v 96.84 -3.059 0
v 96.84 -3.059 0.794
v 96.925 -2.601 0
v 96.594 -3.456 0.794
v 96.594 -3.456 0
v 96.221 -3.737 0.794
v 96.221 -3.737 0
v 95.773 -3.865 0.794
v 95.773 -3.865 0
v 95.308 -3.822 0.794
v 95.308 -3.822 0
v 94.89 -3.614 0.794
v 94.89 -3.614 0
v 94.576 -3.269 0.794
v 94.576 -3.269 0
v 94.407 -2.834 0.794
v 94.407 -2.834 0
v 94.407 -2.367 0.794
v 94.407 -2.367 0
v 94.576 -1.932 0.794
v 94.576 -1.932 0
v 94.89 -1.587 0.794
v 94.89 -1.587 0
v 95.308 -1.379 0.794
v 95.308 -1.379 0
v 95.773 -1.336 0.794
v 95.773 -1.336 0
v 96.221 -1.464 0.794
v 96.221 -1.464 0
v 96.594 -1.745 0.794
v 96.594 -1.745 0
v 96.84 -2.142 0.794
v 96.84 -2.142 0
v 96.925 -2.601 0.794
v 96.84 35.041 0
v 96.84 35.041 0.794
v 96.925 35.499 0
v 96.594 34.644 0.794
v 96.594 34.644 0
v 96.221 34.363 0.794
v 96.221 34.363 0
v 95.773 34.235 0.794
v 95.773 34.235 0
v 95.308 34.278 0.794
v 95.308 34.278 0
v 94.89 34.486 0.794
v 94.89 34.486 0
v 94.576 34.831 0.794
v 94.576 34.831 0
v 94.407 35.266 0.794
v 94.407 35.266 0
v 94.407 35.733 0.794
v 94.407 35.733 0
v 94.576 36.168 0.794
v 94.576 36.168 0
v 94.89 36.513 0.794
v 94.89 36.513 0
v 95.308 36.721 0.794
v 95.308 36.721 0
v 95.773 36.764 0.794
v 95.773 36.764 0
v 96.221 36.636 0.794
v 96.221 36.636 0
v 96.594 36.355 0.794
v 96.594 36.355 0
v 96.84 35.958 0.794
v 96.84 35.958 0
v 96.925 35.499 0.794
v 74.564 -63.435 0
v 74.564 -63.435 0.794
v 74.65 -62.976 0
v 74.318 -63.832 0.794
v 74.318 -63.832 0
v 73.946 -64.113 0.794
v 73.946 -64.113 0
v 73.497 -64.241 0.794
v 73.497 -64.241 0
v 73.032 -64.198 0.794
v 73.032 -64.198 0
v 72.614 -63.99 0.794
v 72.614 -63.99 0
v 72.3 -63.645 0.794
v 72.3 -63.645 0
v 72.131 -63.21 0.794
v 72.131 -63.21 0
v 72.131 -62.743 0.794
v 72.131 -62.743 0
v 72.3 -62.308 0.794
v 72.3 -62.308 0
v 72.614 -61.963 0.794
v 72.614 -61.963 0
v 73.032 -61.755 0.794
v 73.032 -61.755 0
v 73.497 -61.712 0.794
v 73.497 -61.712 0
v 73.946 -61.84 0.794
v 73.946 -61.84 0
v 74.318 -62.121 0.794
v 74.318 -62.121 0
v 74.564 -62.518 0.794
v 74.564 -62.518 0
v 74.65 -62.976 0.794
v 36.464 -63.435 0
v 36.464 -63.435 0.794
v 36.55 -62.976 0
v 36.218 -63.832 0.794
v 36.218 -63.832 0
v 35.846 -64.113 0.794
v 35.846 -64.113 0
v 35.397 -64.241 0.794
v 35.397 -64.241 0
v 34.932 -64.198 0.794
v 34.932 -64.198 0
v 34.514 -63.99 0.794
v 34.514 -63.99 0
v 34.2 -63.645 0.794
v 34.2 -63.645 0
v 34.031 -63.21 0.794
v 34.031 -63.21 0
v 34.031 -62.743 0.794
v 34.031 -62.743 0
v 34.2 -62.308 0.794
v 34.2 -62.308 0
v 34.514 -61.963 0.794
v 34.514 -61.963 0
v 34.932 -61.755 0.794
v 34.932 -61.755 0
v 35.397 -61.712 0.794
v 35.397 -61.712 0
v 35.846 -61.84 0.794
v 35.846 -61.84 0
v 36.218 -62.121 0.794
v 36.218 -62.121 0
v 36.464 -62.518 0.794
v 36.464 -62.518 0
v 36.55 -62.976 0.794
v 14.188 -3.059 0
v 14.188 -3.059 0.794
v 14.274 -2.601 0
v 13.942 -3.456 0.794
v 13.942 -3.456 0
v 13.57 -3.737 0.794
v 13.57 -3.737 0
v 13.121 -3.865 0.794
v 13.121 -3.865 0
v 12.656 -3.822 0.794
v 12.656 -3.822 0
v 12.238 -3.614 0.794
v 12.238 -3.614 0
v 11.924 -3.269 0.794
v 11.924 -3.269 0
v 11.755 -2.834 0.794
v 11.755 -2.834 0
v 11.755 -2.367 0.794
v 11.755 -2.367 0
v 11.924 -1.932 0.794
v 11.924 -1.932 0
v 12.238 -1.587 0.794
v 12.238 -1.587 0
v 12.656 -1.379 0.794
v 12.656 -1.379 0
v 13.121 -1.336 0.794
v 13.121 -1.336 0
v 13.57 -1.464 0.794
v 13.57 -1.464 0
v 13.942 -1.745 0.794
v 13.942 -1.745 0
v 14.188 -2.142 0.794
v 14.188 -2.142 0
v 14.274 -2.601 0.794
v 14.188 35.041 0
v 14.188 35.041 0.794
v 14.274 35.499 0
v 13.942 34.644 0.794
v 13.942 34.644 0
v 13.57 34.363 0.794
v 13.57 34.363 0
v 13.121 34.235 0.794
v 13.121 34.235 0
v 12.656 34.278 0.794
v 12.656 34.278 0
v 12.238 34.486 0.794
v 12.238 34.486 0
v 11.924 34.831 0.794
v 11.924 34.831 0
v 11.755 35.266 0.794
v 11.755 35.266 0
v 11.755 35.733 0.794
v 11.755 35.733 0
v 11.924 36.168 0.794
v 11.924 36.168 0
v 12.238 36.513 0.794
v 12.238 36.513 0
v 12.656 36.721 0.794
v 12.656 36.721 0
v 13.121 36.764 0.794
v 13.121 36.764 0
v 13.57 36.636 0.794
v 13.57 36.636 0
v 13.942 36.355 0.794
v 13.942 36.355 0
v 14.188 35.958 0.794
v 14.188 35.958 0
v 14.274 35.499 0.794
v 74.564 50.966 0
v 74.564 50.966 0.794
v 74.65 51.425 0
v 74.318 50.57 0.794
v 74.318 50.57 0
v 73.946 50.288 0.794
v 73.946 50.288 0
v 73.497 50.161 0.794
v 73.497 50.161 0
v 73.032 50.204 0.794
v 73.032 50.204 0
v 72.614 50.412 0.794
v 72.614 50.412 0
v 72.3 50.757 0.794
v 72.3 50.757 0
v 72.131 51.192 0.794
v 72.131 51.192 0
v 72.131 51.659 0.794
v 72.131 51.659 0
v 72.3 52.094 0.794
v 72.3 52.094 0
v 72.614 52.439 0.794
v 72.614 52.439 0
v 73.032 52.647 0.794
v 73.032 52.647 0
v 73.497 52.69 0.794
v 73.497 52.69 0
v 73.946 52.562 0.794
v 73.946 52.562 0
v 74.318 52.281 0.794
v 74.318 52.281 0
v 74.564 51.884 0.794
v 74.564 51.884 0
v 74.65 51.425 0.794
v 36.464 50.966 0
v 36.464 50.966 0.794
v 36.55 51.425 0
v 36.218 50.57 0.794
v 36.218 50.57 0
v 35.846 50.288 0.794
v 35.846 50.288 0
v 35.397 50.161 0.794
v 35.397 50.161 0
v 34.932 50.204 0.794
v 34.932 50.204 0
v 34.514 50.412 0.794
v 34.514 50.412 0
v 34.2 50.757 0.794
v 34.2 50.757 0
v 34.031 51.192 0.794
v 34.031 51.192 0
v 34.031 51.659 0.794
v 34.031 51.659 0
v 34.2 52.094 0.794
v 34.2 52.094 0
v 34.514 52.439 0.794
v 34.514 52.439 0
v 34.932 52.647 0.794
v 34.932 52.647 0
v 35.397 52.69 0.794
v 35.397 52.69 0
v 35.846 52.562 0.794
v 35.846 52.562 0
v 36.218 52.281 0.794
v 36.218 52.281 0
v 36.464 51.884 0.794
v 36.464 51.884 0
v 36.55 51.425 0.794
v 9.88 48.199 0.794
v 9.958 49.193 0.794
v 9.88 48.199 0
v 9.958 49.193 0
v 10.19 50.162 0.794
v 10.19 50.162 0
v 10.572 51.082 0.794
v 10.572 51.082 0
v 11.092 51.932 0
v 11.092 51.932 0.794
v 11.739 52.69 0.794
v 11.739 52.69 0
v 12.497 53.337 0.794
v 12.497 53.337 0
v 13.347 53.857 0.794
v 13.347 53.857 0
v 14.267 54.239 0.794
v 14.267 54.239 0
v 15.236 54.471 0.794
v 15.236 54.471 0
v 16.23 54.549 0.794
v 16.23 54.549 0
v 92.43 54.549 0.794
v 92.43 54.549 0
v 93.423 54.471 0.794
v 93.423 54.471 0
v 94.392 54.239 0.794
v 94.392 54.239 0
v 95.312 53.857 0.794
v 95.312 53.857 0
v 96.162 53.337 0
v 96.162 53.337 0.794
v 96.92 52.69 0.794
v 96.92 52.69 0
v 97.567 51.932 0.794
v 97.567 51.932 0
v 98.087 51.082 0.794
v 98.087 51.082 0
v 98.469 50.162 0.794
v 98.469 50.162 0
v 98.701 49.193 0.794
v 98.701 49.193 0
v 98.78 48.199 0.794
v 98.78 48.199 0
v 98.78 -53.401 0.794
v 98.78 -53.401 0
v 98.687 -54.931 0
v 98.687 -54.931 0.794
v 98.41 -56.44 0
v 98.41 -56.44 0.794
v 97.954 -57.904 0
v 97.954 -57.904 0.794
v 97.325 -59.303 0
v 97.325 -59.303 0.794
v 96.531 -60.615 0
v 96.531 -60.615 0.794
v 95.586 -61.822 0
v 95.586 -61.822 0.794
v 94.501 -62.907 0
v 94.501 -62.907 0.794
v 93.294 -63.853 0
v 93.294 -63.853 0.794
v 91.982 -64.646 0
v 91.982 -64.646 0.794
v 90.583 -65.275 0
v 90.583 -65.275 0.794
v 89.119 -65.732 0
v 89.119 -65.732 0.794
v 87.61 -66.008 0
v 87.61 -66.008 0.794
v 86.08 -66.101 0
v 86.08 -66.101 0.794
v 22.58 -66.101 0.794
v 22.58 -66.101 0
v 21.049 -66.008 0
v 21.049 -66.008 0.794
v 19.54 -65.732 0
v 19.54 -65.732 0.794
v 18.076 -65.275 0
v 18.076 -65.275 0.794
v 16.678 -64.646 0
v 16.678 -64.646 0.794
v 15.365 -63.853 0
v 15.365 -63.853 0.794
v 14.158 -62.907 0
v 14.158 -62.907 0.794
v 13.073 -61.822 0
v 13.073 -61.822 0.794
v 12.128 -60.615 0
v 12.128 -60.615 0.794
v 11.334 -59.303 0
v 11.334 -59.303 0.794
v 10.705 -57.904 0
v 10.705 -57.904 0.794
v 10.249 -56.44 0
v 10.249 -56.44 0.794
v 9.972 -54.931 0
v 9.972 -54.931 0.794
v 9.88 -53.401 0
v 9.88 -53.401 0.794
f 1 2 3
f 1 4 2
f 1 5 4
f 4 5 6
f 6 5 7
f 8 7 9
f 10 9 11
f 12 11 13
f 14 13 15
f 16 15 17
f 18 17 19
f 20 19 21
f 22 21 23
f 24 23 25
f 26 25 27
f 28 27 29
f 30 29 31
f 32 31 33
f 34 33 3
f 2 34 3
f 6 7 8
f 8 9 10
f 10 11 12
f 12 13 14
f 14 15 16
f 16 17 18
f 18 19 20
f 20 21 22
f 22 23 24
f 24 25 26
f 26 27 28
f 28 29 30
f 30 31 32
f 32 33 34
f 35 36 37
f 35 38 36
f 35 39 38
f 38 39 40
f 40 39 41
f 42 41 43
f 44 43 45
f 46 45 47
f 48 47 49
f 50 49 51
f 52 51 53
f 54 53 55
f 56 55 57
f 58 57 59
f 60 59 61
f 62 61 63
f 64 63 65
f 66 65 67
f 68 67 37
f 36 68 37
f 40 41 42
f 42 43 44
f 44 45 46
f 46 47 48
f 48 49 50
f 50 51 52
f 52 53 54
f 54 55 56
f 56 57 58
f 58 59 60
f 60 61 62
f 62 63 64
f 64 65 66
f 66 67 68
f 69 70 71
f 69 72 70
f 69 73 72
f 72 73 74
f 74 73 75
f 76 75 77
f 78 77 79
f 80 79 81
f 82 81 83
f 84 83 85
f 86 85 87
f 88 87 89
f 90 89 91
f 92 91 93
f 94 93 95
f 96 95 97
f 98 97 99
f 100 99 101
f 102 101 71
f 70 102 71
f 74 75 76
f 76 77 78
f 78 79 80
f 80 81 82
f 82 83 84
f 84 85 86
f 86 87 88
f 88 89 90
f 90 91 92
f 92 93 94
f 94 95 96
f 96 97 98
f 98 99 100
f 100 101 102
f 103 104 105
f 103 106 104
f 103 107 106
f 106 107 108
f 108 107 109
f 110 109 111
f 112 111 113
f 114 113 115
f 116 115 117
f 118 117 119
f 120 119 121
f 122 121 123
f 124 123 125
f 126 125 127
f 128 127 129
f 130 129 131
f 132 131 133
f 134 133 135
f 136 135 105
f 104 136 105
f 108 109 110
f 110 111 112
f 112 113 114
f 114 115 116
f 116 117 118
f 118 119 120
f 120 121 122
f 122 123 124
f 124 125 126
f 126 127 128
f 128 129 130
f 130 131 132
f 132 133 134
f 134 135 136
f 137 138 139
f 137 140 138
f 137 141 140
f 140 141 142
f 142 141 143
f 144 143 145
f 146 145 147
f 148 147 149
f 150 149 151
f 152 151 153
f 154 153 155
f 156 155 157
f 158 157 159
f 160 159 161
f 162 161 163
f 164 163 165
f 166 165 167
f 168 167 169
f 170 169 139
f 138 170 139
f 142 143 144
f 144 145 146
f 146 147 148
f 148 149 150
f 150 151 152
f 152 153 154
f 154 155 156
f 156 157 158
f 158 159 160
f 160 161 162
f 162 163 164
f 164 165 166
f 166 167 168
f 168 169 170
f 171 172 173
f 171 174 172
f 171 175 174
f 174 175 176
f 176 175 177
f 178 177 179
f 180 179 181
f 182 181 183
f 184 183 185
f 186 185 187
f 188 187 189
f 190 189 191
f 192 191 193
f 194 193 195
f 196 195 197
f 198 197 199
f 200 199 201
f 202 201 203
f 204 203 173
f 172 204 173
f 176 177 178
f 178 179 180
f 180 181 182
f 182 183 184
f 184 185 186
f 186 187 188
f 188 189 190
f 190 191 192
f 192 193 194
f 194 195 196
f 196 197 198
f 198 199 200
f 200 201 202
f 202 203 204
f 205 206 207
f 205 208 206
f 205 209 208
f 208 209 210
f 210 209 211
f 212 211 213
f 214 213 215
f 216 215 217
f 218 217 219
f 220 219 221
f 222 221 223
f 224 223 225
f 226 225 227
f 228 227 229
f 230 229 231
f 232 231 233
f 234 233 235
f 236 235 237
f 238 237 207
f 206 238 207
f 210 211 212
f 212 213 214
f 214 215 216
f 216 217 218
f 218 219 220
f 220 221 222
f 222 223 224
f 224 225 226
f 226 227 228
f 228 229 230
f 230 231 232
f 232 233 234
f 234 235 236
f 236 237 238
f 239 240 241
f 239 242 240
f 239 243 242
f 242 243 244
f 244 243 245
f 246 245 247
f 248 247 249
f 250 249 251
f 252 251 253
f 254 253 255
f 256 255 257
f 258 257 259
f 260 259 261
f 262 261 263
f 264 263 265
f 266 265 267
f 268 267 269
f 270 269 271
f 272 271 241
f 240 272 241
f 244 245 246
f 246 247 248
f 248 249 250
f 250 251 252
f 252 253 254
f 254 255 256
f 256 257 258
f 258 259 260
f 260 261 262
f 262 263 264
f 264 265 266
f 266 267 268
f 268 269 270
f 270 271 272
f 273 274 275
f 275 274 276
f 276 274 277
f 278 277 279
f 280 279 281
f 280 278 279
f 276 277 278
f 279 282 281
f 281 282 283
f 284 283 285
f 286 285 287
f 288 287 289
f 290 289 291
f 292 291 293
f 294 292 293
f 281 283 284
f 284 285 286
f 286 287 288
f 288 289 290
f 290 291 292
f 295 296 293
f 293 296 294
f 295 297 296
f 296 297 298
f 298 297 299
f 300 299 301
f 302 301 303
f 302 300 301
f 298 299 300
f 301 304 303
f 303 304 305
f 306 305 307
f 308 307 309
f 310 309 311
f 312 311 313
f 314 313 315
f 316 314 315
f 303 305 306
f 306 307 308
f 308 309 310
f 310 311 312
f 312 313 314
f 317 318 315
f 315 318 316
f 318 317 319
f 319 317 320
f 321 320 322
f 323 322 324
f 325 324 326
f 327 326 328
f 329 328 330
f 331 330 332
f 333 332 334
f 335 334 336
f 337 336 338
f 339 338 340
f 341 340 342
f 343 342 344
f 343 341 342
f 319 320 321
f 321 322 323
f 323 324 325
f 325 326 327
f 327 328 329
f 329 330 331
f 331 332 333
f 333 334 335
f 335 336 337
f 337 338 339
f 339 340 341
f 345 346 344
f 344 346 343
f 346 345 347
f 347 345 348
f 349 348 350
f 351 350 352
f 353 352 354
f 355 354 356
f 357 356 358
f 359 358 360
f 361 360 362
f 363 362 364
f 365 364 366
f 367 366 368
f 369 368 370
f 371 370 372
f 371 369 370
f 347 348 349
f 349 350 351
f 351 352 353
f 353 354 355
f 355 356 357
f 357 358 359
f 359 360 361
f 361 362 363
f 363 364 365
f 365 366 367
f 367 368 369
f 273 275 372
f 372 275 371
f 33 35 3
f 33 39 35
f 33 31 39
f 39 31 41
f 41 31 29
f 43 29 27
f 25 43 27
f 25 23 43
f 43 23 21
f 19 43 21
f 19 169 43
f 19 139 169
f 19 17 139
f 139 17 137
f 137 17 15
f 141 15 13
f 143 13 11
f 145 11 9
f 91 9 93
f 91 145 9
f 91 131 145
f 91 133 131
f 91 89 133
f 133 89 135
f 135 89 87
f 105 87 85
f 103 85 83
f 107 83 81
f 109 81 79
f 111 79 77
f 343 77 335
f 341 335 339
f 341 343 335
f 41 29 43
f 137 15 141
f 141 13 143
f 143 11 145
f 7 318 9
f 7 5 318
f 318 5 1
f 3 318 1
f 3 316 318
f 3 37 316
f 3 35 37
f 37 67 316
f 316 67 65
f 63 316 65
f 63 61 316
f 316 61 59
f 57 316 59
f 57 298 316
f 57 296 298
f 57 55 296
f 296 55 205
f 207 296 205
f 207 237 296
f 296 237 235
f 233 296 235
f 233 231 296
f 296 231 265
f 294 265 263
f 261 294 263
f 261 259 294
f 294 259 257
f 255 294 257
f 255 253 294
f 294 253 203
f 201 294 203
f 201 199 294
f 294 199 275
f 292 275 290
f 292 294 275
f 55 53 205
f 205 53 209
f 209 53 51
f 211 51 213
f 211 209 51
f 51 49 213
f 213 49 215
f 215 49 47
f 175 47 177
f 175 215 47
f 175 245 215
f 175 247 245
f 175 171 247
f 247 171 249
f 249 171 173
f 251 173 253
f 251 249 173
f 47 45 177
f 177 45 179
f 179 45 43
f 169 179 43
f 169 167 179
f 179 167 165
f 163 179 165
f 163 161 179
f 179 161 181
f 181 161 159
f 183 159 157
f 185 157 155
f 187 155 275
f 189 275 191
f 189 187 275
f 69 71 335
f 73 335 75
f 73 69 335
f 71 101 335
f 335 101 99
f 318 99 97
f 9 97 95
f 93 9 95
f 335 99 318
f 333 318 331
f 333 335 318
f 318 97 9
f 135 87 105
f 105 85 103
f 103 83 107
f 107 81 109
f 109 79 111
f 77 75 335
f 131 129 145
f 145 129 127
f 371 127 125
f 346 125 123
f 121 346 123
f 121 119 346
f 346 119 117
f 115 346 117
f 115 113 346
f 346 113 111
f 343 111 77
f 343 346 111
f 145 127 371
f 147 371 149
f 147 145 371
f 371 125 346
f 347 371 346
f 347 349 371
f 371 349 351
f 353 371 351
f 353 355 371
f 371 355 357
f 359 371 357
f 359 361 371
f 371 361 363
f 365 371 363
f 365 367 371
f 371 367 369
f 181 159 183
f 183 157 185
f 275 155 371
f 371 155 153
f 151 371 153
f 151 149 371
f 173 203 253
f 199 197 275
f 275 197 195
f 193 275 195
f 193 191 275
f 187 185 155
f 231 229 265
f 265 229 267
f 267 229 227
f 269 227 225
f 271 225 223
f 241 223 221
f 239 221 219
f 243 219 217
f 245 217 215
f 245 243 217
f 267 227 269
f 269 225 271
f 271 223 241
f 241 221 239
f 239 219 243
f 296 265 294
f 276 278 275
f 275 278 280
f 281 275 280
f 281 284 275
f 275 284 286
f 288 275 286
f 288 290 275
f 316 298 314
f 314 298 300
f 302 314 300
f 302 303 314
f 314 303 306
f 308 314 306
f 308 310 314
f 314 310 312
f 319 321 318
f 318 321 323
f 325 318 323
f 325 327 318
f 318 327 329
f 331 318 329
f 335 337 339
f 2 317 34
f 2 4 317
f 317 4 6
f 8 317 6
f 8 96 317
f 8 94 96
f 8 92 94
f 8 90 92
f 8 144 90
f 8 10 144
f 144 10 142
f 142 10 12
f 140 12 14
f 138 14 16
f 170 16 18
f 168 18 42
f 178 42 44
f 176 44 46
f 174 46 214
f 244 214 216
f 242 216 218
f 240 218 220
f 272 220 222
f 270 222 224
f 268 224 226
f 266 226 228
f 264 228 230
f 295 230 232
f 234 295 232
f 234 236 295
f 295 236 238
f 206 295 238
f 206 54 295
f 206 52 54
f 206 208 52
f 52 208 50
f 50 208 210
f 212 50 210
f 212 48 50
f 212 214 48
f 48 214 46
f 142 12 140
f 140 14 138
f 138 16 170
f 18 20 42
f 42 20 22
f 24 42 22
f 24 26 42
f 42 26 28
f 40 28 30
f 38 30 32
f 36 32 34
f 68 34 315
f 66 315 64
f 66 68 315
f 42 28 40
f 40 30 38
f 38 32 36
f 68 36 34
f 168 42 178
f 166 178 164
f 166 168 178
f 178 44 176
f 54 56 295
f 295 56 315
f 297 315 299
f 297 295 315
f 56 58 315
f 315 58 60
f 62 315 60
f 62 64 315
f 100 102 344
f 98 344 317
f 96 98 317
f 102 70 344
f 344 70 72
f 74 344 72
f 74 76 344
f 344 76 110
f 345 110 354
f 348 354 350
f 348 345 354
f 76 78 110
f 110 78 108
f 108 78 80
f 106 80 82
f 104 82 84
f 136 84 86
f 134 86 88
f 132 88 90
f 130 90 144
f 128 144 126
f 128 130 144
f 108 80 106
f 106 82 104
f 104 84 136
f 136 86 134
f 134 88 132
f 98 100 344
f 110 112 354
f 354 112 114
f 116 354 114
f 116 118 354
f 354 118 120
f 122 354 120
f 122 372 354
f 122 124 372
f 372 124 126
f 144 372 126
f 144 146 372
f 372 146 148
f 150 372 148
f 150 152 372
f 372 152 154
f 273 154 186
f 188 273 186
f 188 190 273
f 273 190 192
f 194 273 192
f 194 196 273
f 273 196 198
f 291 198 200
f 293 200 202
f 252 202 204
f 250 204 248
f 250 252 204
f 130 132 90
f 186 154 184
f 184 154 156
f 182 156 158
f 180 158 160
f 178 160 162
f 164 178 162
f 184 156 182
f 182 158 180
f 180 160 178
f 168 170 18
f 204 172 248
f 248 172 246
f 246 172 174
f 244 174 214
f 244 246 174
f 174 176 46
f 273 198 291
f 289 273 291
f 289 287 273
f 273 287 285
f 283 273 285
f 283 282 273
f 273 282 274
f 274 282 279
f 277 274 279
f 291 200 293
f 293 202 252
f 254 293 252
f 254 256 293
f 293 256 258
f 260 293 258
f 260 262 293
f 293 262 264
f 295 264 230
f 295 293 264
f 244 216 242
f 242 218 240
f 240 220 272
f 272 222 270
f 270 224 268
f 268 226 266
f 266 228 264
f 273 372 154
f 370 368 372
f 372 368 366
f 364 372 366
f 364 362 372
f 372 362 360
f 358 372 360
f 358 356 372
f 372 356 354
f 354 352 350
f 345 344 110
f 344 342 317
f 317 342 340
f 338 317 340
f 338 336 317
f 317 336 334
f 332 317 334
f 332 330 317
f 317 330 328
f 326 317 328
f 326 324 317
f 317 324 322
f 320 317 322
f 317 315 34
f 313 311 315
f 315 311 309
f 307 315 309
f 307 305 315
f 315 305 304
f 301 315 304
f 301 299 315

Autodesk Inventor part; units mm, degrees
ref_plane "YZ Plane" through (0, 0, 0) normal (1, 0, 0) x (0, 1, 0)
ref_plane "XZ Plane" through (0, 0, 0) normal (0, 1, 0) x (-1, 0, 0)
ref_plane "XY Plane" through (0, 0, 0) normal (0, 0, 1) x (1, 0, 0)
sketch "Sketch1" plane through (0, 0, 0) normal (0, 0, 1) x (1, 0, 0)
  line L0 (9.8795, 48.1994) -> (9.8795, -53.4006)
  line L1 (16.2295, 54.5494) -> (92.4295, 54.5494)
  line L2 (98.7795, 48.1994) -> (98.7795, -53.4006)
  line L3 (22.5795, -66.1006) -> (86.0795, -66.1006)
  arc A0 (9.8795, -53.4006) -> (22.5795, -66.1006) centre (22.5795, -53.4006) ccw
  arc A1 (16.2295, 54.5494) -> (9.8795, 48.1994) centre (16.2295, 48.1994) ccw
  arc A2 (98.7795, 48.1994) -> (92.4295, 54.5494) centre (92.4295, 48.1994) ccw
  arc A3 (86.0795, -66.1006) -> (98.7795, -53.4006) centre (86.0795, -53.4006) ccw
  point P0 (0, 0)
  dimension "d0" = 12.7
  dimension "d1" = 6.35
  dimension "d2" = 120.65
  dimension "d3" = 88.9
extrude "Extrusion1" add sketch "Sketch1" along normal blind 0.7937
sketch "Sketch11" plane through (0, 0, 0.7937) normal (0, 0, 1) x (1, 0, 0)
  line L0 (9.8795, -53.4006) -> (9.8795, 48.1994) projected
  line L1 (86.0795, -66.1006) -> (22.5795, -66.1006) projected
  line L2 (98.7795, 48.1994) -> (98.7795, -53.4006) projected
  line L3 (16.2295, 54.5494) -> (92.4295, 54.5494) projected
  circle A0 centre (35.2795, 51.4252) radius 1.27
  circle A1 centre (73.3795, 51.4252) radius 1.27
  circle A2 centre (13.0037, 35.4994) radius 1.27
  circle A3 centre (13.0037, -2.6006) radius 1.27
  circle A4 centre (35.2795, -62.9764) radius 1.27
  circle A5 centre (73.3795, -62.9764) radius 1.27
  circle A6 centre (95.6553, 35.4994) radius 1.27
  circle A7 centre (95.6553, -2.6006) radius 1.27
  point P0 (0, 0)
  dimension "d122" = 3.1242
  dimension "d123" = 3.1242
  dimension "d124" = 3.1242
  dimension "d125" = 3.1242
  dimension "d126" = 25.4
  dimension "d127" = 38.1
  dimension "d128" = 19.05
  dimension "d129" = 38.1
  dimension "d130" = 2.54
extrude "Extrusion19" cut sketch "Sketch11" against normal through all
properties part number "beagle_spacer_top"
